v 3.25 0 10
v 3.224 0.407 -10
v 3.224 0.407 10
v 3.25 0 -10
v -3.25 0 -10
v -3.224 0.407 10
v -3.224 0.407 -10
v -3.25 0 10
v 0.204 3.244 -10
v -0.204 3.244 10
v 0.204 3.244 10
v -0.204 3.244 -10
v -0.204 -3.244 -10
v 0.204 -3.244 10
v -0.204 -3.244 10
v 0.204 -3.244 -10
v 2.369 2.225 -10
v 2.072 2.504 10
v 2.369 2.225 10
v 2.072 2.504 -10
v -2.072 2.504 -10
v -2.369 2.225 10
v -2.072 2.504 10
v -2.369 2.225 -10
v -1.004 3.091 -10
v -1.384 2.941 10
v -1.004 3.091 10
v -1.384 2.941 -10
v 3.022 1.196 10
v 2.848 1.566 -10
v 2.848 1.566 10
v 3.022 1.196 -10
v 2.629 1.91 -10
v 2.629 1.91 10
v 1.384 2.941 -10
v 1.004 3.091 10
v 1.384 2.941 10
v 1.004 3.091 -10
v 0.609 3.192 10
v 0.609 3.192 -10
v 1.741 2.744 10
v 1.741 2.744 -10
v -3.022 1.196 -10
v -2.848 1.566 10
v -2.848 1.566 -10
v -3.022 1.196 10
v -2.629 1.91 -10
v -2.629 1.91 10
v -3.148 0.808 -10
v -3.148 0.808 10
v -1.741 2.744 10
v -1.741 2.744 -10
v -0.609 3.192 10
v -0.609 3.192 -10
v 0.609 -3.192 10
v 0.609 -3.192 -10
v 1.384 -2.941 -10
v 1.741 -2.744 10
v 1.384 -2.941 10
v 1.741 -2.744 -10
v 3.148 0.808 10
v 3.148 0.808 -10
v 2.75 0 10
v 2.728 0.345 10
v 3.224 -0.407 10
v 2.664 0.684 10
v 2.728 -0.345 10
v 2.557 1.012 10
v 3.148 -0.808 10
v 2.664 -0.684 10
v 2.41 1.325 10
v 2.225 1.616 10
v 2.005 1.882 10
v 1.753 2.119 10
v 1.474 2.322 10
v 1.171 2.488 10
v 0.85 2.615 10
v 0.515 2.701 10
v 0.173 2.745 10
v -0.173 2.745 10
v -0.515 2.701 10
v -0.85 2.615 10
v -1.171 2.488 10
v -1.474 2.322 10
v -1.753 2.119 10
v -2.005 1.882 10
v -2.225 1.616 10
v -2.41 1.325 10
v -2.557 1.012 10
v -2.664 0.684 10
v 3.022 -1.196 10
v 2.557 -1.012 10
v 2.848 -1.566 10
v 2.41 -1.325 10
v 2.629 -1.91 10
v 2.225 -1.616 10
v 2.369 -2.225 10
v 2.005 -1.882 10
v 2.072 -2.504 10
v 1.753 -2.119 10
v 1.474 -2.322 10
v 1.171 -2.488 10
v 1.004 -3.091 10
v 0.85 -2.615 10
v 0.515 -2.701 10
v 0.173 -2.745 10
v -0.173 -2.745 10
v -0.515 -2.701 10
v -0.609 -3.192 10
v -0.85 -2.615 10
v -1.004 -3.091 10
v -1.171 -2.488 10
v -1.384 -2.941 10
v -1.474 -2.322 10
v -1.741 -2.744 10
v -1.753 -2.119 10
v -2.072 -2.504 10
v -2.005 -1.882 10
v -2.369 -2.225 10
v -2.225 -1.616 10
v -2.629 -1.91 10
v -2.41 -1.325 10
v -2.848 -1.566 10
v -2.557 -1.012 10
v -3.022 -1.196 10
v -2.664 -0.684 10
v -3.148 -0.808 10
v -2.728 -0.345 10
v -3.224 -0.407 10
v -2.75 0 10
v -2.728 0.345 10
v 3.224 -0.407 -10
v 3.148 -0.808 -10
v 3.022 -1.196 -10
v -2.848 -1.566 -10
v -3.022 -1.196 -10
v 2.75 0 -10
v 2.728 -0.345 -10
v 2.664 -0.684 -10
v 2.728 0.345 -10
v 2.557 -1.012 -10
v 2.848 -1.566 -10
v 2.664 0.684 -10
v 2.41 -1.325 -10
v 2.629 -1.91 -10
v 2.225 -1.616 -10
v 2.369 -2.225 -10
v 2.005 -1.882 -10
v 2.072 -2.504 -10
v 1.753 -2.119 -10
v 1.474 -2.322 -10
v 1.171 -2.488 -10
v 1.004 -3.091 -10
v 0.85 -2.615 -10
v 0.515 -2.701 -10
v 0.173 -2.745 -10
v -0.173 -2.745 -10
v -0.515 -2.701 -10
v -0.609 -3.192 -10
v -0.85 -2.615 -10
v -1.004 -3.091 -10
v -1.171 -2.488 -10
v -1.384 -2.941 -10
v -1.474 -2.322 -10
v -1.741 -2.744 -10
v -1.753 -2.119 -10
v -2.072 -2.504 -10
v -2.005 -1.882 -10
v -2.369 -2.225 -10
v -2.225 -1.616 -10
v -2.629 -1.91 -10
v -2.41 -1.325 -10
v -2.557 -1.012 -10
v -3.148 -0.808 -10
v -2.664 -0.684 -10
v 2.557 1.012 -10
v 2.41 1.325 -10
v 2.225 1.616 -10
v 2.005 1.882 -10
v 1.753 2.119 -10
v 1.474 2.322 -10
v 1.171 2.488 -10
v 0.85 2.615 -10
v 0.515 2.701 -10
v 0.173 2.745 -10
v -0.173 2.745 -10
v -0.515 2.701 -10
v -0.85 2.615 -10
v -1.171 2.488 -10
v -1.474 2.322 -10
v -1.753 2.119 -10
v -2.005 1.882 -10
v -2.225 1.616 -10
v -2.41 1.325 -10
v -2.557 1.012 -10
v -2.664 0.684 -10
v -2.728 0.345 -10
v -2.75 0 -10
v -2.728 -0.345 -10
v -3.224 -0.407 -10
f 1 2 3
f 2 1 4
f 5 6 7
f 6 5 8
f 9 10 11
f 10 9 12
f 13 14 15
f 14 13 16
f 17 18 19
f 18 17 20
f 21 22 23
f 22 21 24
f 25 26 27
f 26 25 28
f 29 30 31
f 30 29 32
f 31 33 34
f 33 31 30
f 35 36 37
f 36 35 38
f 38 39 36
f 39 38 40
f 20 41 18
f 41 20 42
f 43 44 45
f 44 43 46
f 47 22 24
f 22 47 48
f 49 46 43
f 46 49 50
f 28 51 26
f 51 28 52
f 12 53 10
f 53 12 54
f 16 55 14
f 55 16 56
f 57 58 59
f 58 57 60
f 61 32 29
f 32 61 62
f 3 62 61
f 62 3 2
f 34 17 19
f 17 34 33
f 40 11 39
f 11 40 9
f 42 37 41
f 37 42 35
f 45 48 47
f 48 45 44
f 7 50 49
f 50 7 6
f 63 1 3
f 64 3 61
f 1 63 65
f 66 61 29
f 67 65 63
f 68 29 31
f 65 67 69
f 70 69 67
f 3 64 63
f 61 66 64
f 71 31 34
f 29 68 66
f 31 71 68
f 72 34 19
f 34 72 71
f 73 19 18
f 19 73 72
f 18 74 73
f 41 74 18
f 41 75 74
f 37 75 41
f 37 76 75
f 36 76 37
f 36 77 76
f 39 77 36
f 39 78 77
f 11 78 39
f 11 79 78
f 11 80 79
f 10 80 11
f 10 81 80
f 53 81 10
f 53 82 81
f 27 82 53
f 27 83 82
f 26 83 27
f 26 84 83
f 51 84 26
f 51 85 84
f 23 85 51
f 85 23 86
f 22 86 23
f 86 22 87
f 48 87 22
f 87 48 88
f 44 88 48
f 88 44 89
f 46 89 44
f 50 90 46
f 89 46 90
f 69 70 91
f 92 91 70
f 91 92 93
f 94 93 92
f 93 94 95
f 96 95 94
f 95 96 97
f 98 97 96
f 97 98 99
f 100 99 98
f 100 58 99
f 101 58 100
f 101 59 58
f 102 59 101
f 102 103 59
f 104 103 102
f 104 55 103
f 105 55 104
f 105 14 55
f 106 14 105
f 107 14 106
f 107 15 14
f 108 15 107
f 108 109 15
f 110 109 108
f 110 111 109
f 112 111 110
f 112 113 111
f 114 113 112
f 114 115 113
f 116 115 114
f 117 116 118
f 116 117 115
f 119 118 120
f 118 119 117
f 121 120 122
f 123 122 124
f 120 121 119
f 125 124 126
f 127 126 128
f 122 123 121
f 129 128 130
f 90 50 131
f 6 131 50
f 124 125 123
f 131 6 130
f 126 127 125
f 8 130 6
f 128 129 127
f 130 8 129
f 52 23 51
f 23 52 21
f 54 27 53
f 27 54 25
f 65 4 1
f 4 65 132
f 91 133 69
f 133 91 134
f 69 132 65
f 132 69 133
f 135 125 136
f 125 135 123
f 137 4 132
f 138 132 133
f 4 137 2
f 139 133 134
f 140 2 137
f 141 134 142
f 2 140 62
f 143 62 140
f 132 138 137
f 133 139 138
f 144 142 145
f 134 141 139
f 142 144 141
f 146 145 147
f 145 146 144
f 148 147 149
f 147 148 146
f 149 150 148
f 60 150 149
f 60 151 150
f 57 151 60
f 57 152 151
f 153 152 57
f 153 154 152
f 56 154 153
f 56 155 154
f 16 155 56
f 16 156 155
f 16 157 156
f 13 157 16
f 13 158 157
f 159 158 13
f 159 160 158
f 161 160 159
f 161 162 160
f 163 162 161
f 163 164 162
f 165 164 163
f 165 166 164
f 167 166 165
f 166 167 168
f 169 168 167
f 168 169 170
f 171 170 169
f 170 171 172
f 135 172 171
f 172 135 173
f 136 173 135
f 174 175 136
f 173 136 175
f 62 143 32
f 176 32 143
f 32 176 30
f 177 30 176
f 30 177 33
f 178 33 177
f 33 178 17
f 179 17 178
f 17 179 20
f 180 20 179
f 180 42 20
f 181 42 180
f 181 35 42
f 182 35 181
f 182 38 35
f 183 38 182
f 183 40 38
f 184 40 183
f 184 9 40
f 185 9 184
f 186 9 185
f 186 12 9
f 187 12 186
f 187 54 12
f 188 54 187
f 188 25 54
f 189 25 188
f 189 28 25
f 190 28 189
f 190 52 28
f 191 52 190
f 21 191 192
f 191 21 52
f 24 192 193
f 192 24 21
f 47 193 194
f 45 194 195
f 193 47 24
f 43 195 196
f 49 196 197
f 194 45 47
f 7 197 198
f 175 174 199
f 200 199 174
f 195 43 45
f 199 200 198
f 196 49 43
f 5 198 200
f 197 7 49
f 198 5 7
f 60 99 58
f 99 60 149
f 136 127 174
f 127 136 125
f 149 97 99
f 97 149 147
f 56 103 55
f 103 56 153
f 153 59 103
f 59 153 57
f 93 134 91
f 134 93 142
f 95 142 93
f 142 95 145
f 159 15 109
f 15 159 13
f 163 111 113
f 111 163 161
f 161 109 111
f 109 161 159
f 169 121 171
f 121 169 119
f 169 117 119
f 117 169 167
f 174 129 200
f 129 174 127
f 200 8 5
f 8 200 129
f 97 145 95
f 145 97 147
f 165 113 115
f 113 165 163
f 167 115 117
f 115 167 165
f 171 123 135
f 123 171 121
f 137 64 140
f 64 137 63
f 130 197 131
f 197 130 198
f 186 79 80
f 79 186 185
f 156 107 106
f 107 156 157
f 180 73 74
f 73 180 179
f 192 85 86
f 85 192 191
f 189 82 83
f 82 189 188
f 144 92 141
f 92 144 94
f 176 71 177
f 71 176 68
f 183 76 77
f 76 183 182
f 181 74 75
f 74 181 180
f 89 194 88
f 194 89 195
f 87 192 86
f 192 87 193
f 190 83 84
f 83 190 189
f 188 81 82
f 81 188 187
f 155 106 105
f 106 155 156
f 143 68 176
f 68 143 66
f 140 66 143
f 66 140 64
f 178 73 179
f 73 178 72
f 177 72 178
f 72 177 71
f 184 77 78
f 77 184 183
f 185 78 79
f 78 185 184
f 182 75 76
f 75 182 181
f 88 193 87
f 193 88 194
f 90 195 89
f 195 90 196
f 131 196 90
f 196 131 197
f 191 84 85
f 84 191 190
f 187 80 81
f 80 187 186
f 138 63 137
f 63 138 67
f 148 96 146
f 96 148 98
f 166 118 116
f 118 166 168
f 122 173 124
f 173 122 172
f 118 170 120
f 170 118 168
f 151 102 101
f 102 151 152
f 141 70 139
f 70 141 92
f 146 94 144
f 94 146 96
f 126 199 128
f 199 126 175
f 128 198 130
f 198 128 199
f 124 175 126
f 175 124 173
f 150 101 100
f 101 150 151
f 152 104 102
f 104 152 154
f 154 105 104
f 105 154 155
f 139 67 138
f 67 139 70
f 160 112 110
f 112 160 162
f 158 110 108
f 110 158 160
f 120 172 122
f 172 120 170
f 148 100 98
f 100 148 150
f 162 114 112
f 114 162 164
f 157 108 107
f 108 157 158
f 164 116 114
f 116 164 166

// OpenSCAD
$fn = 50;


difference() {
	union() {
		translate(v = [0, 0, -10.0000000000]) {
			cylinder(h = 20, r = 3.2500000000);
		}
	}
	union() {
		translate(v = [0, 0, -100.0000000000]) {
			cylinder(h = 200, r = 2.7500000000);
		}
	}
}
